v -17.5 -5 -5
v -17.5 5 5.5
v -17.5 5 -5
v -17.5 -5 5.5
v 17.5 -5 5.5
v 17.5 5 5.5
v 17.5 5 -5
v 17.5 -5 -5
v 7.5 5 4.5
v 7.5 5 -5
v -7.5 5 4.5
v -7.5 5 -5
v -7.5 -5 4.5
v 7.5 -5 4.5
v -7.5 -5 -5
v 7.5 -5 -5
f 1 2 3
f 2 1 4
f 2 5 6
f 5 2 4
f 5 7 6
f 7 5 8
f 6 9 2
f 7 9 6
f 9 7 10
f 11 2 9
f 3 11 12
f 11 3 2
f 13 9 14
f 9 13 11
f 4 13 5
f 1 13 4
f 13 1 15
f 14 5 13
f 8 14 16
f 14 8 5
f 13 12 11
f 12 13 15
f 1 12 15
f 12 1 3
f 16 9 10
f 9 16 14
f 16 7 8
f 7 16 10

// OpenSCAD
cubeLength = 10;
bridgeWidth = 25;
bridgeHeight = 1;

translate([0, 0, cubeLength / 2]) {
    cube([bridgeWidth + cubeLength, cubeLength, bridgeHeight], center = true);
}

translate([-((bridgeWidth / 2)), 0]) {
    cube(cubeLength, center = true);
}

translate([bridgeWidth / 2, 0, 0]) {
    cube(cubeLength, center = true);
}
